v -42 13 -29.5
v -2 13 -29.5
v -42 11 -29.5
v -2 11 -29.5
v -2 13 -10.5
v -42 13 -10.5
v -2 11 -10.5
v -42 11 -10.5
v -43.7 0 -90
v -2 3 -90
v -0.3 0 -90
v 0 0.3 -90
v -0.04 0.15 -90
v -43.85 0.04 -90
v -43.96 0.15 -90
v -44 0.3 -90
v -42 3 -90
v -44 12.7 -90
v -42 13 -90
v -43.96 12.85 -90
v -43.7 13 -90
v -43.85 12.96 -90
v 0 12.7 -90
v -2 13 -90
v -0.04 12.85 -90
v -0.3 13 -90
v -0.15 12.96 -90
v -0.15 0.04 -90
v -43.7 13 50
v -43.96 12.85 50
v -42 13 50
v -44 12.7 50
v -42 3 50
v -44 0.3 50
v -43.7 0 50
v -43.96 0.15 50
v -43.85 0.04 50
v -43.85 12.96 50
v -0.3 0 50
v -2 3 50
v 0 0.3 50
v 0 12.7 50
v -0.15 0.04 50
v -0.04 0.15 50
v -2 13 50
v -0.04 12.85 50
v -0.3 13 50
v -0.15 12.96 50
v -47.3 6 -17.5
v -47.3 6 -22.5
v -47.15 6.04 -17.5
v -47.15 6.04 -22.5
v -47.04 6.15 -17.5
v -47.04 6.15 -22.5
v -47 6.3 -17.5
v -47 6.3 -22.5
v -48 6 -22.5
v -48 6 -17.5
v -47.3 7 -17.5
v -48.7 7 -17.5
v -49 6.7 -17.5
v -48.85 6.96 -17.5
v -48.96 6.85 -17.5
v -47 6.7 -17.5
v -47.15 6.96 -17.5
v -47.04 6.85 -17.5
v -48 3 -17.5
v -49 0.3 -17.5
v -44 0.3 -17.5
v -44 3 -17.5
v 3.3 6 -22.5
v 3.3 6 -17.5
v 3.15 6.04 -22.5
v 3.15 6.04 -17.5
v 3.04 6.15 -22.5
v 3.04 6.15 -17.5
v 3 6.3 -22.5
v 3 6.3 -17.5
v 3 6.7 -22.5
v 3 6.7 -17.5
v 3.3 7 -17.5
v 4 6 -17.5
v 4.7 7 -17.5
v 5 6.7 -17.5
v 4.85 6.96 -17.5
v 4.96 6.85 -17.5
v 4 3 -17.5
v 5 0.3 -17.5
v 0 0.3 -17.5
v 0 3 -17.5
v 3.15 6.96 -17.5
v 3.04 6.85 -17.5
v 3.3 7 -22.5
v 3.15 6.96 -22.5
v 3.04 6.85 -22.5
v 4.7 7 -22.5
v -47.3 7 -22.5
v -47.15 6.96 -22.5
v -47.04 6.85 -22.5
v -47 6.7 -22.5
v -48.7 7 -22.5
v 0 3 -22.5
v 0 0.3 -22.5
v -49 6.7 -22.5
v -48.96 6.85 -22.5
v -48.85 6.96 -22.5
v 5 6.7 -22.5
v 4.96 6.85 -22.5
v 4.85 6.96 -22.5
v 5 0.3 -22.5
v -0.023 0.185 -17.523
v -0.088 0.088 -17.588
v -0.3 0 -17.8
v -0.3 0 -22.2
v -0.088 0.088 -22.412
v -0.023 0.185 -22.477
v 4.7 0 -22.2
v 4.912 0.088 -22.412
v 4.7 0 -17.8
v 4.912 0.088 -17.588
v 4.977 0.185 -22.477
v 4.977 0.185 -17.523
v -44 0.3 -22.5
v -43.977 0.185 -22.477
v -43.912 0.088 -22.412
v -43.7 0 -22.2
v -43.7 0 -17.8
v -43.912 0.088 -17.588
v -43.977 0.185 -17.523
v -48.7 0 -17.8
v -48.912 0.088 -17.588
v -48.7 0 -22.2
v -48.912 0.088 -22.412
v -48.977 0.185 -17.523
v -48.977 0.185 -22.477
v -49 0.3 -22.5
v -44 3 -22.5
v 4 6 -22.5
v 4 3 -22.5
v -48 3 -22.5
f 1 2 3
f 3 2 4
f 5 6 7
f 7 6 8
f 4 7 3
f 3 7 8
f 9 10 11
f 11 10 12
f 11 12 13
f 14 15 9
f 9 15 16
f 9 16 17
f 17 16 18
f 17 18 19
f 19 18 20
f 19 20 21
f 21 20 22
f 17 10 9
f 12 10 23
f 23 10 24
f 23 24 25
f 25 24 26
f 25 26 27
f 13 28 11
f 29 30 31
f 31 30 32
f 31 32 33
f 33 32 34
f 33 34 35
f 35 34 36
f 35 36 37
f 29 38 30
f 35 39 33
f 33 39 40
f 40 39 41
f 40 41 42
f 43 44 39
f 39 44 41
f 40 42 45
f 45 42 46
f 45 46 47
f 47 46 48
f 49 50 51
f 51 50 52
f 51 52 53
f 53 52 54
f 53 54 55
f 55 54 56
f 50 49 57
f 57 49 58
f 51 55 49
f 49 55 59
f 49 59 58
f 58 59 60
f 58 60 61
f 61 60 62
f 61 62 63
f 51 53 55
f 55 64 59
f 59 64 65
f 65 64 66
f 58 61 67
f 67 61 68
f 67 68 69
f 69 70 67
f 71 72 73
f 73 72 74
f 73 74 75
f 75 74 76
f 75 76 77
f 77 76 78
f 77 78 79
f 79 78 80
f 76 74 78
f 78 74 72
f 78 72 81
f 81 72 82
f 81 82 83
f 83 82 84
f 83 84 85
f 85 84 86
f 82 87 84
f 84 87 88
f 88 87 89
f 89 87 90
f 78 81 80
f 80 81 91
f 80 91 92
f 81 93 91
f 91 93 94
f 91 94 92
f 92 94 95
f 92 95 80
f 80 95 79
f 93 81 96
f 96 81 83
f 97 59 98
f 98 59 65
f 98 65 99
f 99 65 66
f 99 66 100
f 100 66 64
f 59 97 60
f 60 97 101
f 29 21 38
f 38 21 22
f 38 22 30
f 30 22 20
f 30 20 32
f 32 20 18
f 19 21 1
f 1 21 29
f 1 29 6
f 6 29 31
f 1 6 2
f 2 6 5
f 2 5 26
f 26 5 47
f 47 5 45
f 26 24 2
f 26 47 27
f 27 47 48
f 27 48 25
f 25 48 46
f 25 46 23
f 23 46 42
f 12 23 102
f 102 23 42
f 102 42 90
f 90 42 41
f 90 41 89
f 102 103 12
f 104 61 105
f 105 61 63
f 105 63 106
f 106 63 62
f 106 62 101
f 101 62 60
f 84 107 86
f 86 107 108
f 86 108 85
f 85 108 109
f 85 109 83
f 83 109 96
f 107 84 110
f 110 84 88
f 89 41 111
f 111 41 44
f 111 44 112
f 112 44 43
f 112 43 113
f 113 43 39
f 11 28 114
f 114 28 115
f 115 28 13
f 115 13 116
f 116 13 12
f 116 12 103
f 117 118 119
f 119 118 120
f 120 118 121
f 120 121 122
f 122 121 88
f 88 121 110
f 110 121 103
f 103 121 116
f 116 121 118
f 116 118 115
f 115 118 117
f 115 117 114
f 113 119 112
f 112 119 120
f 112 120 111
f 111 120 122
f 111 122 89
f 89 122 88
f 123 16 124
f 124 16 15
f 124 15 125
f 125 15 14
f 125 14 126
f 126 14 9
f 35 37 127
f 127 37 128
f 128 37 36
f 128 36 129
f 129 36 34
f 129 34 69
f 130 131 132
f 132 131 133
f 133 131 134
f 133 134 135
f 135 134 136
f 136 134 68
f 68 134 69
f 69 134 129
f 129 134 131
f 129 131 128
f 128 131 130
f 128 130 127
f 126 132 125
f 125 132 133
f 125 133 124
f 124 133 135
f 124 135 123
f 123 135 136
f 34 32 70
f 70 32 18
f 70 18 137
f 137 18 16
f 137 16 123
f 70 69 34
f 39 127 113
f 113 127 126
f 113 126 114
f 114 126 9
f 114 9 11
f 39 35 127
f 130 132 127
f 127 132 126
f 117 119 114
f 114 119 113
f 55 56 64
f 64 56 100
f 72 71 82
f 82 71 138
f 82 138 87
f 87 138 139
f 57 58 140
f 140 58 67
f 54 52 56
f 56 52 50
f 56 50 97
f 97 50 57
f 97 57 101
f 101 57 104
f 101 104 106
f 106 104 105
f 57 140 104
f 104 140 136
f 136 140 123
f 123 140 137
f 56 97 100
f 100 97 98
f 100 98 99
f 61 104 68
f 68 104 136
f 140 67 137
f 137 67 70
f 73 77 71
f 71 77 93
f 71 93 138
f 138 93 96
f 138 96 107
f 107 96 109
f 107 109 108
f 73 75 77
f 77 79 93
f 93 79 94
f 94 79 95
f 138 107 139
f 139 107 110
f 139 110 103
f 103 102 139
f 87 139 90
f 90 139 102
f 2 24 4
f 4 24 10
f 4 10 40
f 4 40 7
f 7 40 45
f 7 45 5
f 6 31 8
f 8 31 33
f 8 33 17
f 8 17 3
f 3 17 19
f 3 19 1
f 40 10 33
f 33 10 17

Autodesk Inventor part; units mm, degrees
ref_plane "YZ Plane" through (0, 0, 0) normal (1, 0, 0) x (0, 1, 0)
ref_plane "XZ Plane" through (0, 0, 0) normal (0, 1, 0) x (-1, 0, 0)
ref_plane "XY Plane" through (0, 0, 0) normal (0, 0, 1) x (1, 0, 0)
sketch "Szkic1" plane through (0, 0, 0) normal (0, 1, 0) x (-1, 0, 0)
  line L0 (0, 0) -> (0, -40)
  line L1 (0, 0) -> (44, 0)
  line L2 (44, 0) -> (44, -40)
  line L3 (0, -40) -> (44, -40)
  dimension "d0" = 40
  dimension "d1" = 44
extrude "Wyciągnięcie proste1" add sketch "Szkic1" along normal blind 3
sketch "Szkic2" plane through (0, 3, 0) normal (0, 1, 0) x (1, 0, 0)
  line L0 (0, 0) -> (0, 40) projected
  line L1 (0, 40) -> (-44, 40) projected
  line L2 (-44, 40) -> (-44, 0) projected
  line L3 (-44, 0) -> (0, 0) projected
  line L4 (-42, 2) -> (-42, 38)
  line L5 (-42, 38) -> (-2, 38)
  line L6 (-2, 38) -> (-2, 2)
  line L7 (-2, 2) -> (-42, 2)
  line L8 (-42, 38) -> (-42, 40)
  line L9 (-2, 38) -> (-2, 40)
  line L10 (-2, 2) -> (-2, 0)
  line L11 (-42, 2) -> (-42, 0)
  dimension "d4" = 2
extrude "Wyciągnięcie proste2" add sketch "Szkic2" along normal blind 10 contours L3 L10 L6 L9 L1 L0 | L3 L2 L1 L8 L4 L11
sketch "Szkic3" plane through (0, 0, 0) normal (0, -1, 0) x (1, 0, 0)
  line L0 (0, 0) -> (0, -40) projected
  line L1 (-44, 0) -> (0, 0) projected
  line L2 (-44, -40) -> (-44, 0) projected
  line L3 (0, -40) -> (-44, -40) projected
  line L4 (0, -20) -> (5, -20)
  line L5 (-44, -20) -> (-49, -20) construction
  line L6 (-49, -20) -> (-49, -22.5)
  line L7 (-49, -20) -> (-49, -17.5)
  line L8 (5, -20) -> (5, -22.5)
  line L9 (5, -22.5) -> (5, -20)
  line L10 (5, -20) -> (5, -17.5)
  line L11 (5, -17.5) -> (0, -17.5)
  line L12 (5, -22.5) -> (0, -22.5)
  line L13 (-49, -22.5) -> (-44, -22.5)
  line L14 (-49, -17.5) -> (-44, -17.5)
  dimension "d7" = 5
  dimension "d8" = 5
  dimension "d9" = 2.5
  dimension "d10" = 2.5
  dimension "d11" = 2.5
  dimension "d12" = 2.5
extrude "Wyciągnięcie proste3" add sketch "Szkic3" against normal blind 3 contours L11 L10 L4 L0 | L4 L8 L12 L0 | L2 L13 L6 L7 L14
sketch "Szkic4" plane through (0, 3, 0) normal (0, 1, 0) x (1, 0, 0)
  line L0 (5, 17.5) -> (5, 22.5) projected
  line L1 (5, 22.5) -> (0, 22.5) projected
  line L2 (0, 17.5) -> (0, 22.5) projected
  line L3 (0, 17.5) -> (5, 17.5) projected
  line L4 (5, 17.5) -> (4, 17.5)
  line L5 (4, 17.5) -> (4, 22.5)
  line L6 (4, 22.5) -> (5, 22.5)
  line L7 (5, 22.5) -> (5, 17.5)
  line L8 (-49, 22.5) -> (-49, 17.5) projected
  line L9 (-49, 17.5) -> (-44, 17.5) projected
  line L10 (-44, 22.5) -> (-44, 17.5) projected
  line L11 (-44, 22.5) -> (-49, 22.5) projected
  line L12 (-49, 17.5) -> (-48, 17.5)
  line L13 (-48, 17.5) -> (-48, 22.5)
  line L14 (-48, 22.5) -> (-49, 22.5)
  line L15 (-49, 22.5) -> (-49, 17.5)
  point P0 (0, 0)
  dimension "d15" = 1
  dimension "d16" = 1
extrude "Wyciągnięcie proste4" add sketch "Szkic4" along normal blind 4 contours L3 L5 L1 L0 | L11 L13 L9 L8
sketch "Szkic5" plane through (4, 3, -22.5) normal (-1, 0, 0) x (0, 0, 1)
  line L0 (5, 0) -> (0, 0) projected
  line L1 (5, 0) -> (5, 4) projected
  line L2 (0, 4) -> (5, 4) projected
  line L3 (0, 0) -> (0, 4) projected
  line L4 (5, 4) -> (0, 4)
  line L5 (0, 4) -> (0, 3)
  line L6 (0, 3) -> (5, 3)
  line L7 (5, 3) -> (5, 4)
  point P0 (22.5, -3)
  dimension "d19" = 5
  dimension "d20" = 1
extrude "Wyciągnięcie proste5" add sketch "Szkic5" along normal blind 1 contours L6 L3 L2 L1
sketch "Szkic6" plane through (-48, 3, -17.5) normal (1, 0, 0) x (0, 0, -1)
  line L0 (5, 0) -> (0, 0) projected
  line L1 (5, 0) -> (5, 4) projected
  line L2 (0, 4) -> (5, 4) projected
  line L3 (0, 0) -> (0, 4) projected
  line L4 (0, 4) -> (5, 4)
  line L5 (5, 4) -> (5, 3)
  line L6 (5, 3) -> (0, 3)
  line L7 (0, 3) -> (0, 4)
  point P0 (-17.5, -3)
  point P1 (0, 3)
  point P2 (5, 3)
  dimension "d23" = 5
  dimension "d24" = 1
extrude "Wyciągnięcie proste6" add sketch "Szkic6" along normal blind 1 contours L6 L3 L2 L1
fillet "Zaokrąglenie1" radius 0.3 18 edges at (-49, 0, -20) (5, 0, -20) (5, 7, -20) (-49, 7, -20) (-44, 0, -31.25) (0, 0, -31.25) (0, 0, -8.75) (2.5, 0, -17.5) (2.5, 0, -22.5) (-44, 0, -8.75) (-46.5, 0, -17.5) (-46.5, 0, -22.5) (0, 13, -20) (-44, 13, -20) (-47, 7, -20) (3, 7, -20) (3, 6, -20) (-47, 6, -20)
sketch "Szkic8" plane through (-42, 3, 0) normal (0, 0, 1) x (1, 0, 0)
  arc A0 (-1.7, 10) -> (-2, 9.7) centre (-1.7, 9.7) ccw projected
  line L0 (-2, -2.7) -> (-2, 9.7) projected
  arc A1 (-2, -2.7) -> (-1.7, -3) centre (-1.7, -2.7) ccw projected
  line L1 (-1.7, -3) -> (41.7, -3) projected
  arc A2 (41.7, -3) -> (42, -2.7) centre (41.7, -2.7) ccw projected
  line L2 (42, -2.7) -> (42, 9.7) projected
  arc A3 (42, 9.7) -> (41.7, 10) centre (41.7, 9.7) ccw projected
  line L3 (40, 10) -> (41.7, 10) projected
  line L4 (40, 0) -> (40, 10) projected
  line L5 (0, 0) -> (40, 0) projected
  line L6 (0, 0) -> (0, 10) projected
  line L7 (-1.7, 10) -> (0, 10) projected
  point P0 (42, -3)
extrude "Wyciągnięcie proste7" add sketch "Szkic8" along normal blind 50
sketch "Szkic9" plane through (-2, 3, -40) normal (0, 0, -1) x (-1, 0, 0)
  arc A0 (42, 9.7) -> (41.7, 10) centre (41.7, 9.7) ccw projected
  line L0 (40, 10) -> (41.7, 10) projected
  line L1 (40, 0) -> (40, 10) projected
  line L2 (0, 0) -> (40, 0) projected
  line L3 (0, 0) -> (0, 10) projected
  line L4 (-1.7, 10) -> (0, 10) projected
  arc A1 (-1.7, 10) -> (-2, 9.7) centre (-1.7, 9.7) ccw projected
  line L5 (-2, -2.7) -> (-2, 9.7) projected
  arc A2 (-2, -2.7) -> (-1.7, -3) centre (-1.7, -2.7) ccw projected
  line L6 (-1.7, -3) -> (41.7, -3) projected
  arc A3 (41.7, -3) -> (42, -2.7) centre (41.7, -2.7) ccw projected
  line L7 (42, -2.7) -> (42, 9.7) projected
  point P0 (-2, -3)
extrude "Wyciągnięcie proste8" add sketch "Szkic9" along normal blind 50
sketch "Szkic10" plane through (0, 13, 0) normal (0, 1, 0) x (1, 0, 0)
  line L0 (-43.7, 90) -> (-43.7, -50) projected
  line L1 (-42, -50) -> (-43.7, -50) projected
  line L2 (-42, 90) -> (-42, -50) projected
  line L3 (-43.7, 90) -> (-42, 90) projected
  line L4 (-2, -50) -> (-2, 90) projected
  line L5 (-2, -50) -> (-2, 90) projected
  line L6 (-42, 90) -> (-2, 90) projected
  line L7 (-42, 90) -> (-42, -50) projected
  line L8 (-2, -50) -> (-42, -50) projected
  line L9 (-44, 22.5) -> (-48, 22.5) projected
  line L10 (-48, 22.5) -> (-48, 17.5) projected
  line L11 (-48, 17.5) -> (-44, 17.5) projected
  line L12 (-44, 22.5) -> (-44, 17.5) projected
  line L13 (-44, 22.5) -> (-48, 22.5) projected
  line L14 (-49, 22.5) -> (-49, 17.5) projected
  line L15 (-48, 22.5) -> (-48, 17.5) projected
  line L16 (-42, 17.5) -> (-2, 17.5)
  line L17 (-2, 17.5) -> (-2, 22.5)
  line L18 (-2, 22.5) -> (-42, 22.5)
  line L19 (-42, 22.5) -> (-42, 17.5)
  line L20 (-42, 17.5) -> (-2, 17.5)
  line L21 (-2, 17.5) -> (-2, 10.5)
  line L22 (-2, 10.5) -> (-42, 10.5)
  line L23 (-42, 10.5) -> (-42, 17.5)
  line L24 (-42, 22.5) -> (-2, 22.5)
  line L25 (-2, 22.5) -> (-2, 29.5)
  line L26 (-2, 29.5) -> (-42, 29.5)
  line L27 (-42, 29.5) -> (-42, 22.5)
  point P0 (0, 0)
  dimension "d32" = 5
  dimension "d33" = 40
  dimension "d34" = 7
  dimension "d35" = 40
  dimension "d36" = 7
extrude "Wyciągnięcie proste9" add sketch "Szkic10" against normal blind 2 contours L26 L4 L18 L2 | L2 L16 L4 L22 | L18 L4 L16 L2
properties part number "obudowa"
